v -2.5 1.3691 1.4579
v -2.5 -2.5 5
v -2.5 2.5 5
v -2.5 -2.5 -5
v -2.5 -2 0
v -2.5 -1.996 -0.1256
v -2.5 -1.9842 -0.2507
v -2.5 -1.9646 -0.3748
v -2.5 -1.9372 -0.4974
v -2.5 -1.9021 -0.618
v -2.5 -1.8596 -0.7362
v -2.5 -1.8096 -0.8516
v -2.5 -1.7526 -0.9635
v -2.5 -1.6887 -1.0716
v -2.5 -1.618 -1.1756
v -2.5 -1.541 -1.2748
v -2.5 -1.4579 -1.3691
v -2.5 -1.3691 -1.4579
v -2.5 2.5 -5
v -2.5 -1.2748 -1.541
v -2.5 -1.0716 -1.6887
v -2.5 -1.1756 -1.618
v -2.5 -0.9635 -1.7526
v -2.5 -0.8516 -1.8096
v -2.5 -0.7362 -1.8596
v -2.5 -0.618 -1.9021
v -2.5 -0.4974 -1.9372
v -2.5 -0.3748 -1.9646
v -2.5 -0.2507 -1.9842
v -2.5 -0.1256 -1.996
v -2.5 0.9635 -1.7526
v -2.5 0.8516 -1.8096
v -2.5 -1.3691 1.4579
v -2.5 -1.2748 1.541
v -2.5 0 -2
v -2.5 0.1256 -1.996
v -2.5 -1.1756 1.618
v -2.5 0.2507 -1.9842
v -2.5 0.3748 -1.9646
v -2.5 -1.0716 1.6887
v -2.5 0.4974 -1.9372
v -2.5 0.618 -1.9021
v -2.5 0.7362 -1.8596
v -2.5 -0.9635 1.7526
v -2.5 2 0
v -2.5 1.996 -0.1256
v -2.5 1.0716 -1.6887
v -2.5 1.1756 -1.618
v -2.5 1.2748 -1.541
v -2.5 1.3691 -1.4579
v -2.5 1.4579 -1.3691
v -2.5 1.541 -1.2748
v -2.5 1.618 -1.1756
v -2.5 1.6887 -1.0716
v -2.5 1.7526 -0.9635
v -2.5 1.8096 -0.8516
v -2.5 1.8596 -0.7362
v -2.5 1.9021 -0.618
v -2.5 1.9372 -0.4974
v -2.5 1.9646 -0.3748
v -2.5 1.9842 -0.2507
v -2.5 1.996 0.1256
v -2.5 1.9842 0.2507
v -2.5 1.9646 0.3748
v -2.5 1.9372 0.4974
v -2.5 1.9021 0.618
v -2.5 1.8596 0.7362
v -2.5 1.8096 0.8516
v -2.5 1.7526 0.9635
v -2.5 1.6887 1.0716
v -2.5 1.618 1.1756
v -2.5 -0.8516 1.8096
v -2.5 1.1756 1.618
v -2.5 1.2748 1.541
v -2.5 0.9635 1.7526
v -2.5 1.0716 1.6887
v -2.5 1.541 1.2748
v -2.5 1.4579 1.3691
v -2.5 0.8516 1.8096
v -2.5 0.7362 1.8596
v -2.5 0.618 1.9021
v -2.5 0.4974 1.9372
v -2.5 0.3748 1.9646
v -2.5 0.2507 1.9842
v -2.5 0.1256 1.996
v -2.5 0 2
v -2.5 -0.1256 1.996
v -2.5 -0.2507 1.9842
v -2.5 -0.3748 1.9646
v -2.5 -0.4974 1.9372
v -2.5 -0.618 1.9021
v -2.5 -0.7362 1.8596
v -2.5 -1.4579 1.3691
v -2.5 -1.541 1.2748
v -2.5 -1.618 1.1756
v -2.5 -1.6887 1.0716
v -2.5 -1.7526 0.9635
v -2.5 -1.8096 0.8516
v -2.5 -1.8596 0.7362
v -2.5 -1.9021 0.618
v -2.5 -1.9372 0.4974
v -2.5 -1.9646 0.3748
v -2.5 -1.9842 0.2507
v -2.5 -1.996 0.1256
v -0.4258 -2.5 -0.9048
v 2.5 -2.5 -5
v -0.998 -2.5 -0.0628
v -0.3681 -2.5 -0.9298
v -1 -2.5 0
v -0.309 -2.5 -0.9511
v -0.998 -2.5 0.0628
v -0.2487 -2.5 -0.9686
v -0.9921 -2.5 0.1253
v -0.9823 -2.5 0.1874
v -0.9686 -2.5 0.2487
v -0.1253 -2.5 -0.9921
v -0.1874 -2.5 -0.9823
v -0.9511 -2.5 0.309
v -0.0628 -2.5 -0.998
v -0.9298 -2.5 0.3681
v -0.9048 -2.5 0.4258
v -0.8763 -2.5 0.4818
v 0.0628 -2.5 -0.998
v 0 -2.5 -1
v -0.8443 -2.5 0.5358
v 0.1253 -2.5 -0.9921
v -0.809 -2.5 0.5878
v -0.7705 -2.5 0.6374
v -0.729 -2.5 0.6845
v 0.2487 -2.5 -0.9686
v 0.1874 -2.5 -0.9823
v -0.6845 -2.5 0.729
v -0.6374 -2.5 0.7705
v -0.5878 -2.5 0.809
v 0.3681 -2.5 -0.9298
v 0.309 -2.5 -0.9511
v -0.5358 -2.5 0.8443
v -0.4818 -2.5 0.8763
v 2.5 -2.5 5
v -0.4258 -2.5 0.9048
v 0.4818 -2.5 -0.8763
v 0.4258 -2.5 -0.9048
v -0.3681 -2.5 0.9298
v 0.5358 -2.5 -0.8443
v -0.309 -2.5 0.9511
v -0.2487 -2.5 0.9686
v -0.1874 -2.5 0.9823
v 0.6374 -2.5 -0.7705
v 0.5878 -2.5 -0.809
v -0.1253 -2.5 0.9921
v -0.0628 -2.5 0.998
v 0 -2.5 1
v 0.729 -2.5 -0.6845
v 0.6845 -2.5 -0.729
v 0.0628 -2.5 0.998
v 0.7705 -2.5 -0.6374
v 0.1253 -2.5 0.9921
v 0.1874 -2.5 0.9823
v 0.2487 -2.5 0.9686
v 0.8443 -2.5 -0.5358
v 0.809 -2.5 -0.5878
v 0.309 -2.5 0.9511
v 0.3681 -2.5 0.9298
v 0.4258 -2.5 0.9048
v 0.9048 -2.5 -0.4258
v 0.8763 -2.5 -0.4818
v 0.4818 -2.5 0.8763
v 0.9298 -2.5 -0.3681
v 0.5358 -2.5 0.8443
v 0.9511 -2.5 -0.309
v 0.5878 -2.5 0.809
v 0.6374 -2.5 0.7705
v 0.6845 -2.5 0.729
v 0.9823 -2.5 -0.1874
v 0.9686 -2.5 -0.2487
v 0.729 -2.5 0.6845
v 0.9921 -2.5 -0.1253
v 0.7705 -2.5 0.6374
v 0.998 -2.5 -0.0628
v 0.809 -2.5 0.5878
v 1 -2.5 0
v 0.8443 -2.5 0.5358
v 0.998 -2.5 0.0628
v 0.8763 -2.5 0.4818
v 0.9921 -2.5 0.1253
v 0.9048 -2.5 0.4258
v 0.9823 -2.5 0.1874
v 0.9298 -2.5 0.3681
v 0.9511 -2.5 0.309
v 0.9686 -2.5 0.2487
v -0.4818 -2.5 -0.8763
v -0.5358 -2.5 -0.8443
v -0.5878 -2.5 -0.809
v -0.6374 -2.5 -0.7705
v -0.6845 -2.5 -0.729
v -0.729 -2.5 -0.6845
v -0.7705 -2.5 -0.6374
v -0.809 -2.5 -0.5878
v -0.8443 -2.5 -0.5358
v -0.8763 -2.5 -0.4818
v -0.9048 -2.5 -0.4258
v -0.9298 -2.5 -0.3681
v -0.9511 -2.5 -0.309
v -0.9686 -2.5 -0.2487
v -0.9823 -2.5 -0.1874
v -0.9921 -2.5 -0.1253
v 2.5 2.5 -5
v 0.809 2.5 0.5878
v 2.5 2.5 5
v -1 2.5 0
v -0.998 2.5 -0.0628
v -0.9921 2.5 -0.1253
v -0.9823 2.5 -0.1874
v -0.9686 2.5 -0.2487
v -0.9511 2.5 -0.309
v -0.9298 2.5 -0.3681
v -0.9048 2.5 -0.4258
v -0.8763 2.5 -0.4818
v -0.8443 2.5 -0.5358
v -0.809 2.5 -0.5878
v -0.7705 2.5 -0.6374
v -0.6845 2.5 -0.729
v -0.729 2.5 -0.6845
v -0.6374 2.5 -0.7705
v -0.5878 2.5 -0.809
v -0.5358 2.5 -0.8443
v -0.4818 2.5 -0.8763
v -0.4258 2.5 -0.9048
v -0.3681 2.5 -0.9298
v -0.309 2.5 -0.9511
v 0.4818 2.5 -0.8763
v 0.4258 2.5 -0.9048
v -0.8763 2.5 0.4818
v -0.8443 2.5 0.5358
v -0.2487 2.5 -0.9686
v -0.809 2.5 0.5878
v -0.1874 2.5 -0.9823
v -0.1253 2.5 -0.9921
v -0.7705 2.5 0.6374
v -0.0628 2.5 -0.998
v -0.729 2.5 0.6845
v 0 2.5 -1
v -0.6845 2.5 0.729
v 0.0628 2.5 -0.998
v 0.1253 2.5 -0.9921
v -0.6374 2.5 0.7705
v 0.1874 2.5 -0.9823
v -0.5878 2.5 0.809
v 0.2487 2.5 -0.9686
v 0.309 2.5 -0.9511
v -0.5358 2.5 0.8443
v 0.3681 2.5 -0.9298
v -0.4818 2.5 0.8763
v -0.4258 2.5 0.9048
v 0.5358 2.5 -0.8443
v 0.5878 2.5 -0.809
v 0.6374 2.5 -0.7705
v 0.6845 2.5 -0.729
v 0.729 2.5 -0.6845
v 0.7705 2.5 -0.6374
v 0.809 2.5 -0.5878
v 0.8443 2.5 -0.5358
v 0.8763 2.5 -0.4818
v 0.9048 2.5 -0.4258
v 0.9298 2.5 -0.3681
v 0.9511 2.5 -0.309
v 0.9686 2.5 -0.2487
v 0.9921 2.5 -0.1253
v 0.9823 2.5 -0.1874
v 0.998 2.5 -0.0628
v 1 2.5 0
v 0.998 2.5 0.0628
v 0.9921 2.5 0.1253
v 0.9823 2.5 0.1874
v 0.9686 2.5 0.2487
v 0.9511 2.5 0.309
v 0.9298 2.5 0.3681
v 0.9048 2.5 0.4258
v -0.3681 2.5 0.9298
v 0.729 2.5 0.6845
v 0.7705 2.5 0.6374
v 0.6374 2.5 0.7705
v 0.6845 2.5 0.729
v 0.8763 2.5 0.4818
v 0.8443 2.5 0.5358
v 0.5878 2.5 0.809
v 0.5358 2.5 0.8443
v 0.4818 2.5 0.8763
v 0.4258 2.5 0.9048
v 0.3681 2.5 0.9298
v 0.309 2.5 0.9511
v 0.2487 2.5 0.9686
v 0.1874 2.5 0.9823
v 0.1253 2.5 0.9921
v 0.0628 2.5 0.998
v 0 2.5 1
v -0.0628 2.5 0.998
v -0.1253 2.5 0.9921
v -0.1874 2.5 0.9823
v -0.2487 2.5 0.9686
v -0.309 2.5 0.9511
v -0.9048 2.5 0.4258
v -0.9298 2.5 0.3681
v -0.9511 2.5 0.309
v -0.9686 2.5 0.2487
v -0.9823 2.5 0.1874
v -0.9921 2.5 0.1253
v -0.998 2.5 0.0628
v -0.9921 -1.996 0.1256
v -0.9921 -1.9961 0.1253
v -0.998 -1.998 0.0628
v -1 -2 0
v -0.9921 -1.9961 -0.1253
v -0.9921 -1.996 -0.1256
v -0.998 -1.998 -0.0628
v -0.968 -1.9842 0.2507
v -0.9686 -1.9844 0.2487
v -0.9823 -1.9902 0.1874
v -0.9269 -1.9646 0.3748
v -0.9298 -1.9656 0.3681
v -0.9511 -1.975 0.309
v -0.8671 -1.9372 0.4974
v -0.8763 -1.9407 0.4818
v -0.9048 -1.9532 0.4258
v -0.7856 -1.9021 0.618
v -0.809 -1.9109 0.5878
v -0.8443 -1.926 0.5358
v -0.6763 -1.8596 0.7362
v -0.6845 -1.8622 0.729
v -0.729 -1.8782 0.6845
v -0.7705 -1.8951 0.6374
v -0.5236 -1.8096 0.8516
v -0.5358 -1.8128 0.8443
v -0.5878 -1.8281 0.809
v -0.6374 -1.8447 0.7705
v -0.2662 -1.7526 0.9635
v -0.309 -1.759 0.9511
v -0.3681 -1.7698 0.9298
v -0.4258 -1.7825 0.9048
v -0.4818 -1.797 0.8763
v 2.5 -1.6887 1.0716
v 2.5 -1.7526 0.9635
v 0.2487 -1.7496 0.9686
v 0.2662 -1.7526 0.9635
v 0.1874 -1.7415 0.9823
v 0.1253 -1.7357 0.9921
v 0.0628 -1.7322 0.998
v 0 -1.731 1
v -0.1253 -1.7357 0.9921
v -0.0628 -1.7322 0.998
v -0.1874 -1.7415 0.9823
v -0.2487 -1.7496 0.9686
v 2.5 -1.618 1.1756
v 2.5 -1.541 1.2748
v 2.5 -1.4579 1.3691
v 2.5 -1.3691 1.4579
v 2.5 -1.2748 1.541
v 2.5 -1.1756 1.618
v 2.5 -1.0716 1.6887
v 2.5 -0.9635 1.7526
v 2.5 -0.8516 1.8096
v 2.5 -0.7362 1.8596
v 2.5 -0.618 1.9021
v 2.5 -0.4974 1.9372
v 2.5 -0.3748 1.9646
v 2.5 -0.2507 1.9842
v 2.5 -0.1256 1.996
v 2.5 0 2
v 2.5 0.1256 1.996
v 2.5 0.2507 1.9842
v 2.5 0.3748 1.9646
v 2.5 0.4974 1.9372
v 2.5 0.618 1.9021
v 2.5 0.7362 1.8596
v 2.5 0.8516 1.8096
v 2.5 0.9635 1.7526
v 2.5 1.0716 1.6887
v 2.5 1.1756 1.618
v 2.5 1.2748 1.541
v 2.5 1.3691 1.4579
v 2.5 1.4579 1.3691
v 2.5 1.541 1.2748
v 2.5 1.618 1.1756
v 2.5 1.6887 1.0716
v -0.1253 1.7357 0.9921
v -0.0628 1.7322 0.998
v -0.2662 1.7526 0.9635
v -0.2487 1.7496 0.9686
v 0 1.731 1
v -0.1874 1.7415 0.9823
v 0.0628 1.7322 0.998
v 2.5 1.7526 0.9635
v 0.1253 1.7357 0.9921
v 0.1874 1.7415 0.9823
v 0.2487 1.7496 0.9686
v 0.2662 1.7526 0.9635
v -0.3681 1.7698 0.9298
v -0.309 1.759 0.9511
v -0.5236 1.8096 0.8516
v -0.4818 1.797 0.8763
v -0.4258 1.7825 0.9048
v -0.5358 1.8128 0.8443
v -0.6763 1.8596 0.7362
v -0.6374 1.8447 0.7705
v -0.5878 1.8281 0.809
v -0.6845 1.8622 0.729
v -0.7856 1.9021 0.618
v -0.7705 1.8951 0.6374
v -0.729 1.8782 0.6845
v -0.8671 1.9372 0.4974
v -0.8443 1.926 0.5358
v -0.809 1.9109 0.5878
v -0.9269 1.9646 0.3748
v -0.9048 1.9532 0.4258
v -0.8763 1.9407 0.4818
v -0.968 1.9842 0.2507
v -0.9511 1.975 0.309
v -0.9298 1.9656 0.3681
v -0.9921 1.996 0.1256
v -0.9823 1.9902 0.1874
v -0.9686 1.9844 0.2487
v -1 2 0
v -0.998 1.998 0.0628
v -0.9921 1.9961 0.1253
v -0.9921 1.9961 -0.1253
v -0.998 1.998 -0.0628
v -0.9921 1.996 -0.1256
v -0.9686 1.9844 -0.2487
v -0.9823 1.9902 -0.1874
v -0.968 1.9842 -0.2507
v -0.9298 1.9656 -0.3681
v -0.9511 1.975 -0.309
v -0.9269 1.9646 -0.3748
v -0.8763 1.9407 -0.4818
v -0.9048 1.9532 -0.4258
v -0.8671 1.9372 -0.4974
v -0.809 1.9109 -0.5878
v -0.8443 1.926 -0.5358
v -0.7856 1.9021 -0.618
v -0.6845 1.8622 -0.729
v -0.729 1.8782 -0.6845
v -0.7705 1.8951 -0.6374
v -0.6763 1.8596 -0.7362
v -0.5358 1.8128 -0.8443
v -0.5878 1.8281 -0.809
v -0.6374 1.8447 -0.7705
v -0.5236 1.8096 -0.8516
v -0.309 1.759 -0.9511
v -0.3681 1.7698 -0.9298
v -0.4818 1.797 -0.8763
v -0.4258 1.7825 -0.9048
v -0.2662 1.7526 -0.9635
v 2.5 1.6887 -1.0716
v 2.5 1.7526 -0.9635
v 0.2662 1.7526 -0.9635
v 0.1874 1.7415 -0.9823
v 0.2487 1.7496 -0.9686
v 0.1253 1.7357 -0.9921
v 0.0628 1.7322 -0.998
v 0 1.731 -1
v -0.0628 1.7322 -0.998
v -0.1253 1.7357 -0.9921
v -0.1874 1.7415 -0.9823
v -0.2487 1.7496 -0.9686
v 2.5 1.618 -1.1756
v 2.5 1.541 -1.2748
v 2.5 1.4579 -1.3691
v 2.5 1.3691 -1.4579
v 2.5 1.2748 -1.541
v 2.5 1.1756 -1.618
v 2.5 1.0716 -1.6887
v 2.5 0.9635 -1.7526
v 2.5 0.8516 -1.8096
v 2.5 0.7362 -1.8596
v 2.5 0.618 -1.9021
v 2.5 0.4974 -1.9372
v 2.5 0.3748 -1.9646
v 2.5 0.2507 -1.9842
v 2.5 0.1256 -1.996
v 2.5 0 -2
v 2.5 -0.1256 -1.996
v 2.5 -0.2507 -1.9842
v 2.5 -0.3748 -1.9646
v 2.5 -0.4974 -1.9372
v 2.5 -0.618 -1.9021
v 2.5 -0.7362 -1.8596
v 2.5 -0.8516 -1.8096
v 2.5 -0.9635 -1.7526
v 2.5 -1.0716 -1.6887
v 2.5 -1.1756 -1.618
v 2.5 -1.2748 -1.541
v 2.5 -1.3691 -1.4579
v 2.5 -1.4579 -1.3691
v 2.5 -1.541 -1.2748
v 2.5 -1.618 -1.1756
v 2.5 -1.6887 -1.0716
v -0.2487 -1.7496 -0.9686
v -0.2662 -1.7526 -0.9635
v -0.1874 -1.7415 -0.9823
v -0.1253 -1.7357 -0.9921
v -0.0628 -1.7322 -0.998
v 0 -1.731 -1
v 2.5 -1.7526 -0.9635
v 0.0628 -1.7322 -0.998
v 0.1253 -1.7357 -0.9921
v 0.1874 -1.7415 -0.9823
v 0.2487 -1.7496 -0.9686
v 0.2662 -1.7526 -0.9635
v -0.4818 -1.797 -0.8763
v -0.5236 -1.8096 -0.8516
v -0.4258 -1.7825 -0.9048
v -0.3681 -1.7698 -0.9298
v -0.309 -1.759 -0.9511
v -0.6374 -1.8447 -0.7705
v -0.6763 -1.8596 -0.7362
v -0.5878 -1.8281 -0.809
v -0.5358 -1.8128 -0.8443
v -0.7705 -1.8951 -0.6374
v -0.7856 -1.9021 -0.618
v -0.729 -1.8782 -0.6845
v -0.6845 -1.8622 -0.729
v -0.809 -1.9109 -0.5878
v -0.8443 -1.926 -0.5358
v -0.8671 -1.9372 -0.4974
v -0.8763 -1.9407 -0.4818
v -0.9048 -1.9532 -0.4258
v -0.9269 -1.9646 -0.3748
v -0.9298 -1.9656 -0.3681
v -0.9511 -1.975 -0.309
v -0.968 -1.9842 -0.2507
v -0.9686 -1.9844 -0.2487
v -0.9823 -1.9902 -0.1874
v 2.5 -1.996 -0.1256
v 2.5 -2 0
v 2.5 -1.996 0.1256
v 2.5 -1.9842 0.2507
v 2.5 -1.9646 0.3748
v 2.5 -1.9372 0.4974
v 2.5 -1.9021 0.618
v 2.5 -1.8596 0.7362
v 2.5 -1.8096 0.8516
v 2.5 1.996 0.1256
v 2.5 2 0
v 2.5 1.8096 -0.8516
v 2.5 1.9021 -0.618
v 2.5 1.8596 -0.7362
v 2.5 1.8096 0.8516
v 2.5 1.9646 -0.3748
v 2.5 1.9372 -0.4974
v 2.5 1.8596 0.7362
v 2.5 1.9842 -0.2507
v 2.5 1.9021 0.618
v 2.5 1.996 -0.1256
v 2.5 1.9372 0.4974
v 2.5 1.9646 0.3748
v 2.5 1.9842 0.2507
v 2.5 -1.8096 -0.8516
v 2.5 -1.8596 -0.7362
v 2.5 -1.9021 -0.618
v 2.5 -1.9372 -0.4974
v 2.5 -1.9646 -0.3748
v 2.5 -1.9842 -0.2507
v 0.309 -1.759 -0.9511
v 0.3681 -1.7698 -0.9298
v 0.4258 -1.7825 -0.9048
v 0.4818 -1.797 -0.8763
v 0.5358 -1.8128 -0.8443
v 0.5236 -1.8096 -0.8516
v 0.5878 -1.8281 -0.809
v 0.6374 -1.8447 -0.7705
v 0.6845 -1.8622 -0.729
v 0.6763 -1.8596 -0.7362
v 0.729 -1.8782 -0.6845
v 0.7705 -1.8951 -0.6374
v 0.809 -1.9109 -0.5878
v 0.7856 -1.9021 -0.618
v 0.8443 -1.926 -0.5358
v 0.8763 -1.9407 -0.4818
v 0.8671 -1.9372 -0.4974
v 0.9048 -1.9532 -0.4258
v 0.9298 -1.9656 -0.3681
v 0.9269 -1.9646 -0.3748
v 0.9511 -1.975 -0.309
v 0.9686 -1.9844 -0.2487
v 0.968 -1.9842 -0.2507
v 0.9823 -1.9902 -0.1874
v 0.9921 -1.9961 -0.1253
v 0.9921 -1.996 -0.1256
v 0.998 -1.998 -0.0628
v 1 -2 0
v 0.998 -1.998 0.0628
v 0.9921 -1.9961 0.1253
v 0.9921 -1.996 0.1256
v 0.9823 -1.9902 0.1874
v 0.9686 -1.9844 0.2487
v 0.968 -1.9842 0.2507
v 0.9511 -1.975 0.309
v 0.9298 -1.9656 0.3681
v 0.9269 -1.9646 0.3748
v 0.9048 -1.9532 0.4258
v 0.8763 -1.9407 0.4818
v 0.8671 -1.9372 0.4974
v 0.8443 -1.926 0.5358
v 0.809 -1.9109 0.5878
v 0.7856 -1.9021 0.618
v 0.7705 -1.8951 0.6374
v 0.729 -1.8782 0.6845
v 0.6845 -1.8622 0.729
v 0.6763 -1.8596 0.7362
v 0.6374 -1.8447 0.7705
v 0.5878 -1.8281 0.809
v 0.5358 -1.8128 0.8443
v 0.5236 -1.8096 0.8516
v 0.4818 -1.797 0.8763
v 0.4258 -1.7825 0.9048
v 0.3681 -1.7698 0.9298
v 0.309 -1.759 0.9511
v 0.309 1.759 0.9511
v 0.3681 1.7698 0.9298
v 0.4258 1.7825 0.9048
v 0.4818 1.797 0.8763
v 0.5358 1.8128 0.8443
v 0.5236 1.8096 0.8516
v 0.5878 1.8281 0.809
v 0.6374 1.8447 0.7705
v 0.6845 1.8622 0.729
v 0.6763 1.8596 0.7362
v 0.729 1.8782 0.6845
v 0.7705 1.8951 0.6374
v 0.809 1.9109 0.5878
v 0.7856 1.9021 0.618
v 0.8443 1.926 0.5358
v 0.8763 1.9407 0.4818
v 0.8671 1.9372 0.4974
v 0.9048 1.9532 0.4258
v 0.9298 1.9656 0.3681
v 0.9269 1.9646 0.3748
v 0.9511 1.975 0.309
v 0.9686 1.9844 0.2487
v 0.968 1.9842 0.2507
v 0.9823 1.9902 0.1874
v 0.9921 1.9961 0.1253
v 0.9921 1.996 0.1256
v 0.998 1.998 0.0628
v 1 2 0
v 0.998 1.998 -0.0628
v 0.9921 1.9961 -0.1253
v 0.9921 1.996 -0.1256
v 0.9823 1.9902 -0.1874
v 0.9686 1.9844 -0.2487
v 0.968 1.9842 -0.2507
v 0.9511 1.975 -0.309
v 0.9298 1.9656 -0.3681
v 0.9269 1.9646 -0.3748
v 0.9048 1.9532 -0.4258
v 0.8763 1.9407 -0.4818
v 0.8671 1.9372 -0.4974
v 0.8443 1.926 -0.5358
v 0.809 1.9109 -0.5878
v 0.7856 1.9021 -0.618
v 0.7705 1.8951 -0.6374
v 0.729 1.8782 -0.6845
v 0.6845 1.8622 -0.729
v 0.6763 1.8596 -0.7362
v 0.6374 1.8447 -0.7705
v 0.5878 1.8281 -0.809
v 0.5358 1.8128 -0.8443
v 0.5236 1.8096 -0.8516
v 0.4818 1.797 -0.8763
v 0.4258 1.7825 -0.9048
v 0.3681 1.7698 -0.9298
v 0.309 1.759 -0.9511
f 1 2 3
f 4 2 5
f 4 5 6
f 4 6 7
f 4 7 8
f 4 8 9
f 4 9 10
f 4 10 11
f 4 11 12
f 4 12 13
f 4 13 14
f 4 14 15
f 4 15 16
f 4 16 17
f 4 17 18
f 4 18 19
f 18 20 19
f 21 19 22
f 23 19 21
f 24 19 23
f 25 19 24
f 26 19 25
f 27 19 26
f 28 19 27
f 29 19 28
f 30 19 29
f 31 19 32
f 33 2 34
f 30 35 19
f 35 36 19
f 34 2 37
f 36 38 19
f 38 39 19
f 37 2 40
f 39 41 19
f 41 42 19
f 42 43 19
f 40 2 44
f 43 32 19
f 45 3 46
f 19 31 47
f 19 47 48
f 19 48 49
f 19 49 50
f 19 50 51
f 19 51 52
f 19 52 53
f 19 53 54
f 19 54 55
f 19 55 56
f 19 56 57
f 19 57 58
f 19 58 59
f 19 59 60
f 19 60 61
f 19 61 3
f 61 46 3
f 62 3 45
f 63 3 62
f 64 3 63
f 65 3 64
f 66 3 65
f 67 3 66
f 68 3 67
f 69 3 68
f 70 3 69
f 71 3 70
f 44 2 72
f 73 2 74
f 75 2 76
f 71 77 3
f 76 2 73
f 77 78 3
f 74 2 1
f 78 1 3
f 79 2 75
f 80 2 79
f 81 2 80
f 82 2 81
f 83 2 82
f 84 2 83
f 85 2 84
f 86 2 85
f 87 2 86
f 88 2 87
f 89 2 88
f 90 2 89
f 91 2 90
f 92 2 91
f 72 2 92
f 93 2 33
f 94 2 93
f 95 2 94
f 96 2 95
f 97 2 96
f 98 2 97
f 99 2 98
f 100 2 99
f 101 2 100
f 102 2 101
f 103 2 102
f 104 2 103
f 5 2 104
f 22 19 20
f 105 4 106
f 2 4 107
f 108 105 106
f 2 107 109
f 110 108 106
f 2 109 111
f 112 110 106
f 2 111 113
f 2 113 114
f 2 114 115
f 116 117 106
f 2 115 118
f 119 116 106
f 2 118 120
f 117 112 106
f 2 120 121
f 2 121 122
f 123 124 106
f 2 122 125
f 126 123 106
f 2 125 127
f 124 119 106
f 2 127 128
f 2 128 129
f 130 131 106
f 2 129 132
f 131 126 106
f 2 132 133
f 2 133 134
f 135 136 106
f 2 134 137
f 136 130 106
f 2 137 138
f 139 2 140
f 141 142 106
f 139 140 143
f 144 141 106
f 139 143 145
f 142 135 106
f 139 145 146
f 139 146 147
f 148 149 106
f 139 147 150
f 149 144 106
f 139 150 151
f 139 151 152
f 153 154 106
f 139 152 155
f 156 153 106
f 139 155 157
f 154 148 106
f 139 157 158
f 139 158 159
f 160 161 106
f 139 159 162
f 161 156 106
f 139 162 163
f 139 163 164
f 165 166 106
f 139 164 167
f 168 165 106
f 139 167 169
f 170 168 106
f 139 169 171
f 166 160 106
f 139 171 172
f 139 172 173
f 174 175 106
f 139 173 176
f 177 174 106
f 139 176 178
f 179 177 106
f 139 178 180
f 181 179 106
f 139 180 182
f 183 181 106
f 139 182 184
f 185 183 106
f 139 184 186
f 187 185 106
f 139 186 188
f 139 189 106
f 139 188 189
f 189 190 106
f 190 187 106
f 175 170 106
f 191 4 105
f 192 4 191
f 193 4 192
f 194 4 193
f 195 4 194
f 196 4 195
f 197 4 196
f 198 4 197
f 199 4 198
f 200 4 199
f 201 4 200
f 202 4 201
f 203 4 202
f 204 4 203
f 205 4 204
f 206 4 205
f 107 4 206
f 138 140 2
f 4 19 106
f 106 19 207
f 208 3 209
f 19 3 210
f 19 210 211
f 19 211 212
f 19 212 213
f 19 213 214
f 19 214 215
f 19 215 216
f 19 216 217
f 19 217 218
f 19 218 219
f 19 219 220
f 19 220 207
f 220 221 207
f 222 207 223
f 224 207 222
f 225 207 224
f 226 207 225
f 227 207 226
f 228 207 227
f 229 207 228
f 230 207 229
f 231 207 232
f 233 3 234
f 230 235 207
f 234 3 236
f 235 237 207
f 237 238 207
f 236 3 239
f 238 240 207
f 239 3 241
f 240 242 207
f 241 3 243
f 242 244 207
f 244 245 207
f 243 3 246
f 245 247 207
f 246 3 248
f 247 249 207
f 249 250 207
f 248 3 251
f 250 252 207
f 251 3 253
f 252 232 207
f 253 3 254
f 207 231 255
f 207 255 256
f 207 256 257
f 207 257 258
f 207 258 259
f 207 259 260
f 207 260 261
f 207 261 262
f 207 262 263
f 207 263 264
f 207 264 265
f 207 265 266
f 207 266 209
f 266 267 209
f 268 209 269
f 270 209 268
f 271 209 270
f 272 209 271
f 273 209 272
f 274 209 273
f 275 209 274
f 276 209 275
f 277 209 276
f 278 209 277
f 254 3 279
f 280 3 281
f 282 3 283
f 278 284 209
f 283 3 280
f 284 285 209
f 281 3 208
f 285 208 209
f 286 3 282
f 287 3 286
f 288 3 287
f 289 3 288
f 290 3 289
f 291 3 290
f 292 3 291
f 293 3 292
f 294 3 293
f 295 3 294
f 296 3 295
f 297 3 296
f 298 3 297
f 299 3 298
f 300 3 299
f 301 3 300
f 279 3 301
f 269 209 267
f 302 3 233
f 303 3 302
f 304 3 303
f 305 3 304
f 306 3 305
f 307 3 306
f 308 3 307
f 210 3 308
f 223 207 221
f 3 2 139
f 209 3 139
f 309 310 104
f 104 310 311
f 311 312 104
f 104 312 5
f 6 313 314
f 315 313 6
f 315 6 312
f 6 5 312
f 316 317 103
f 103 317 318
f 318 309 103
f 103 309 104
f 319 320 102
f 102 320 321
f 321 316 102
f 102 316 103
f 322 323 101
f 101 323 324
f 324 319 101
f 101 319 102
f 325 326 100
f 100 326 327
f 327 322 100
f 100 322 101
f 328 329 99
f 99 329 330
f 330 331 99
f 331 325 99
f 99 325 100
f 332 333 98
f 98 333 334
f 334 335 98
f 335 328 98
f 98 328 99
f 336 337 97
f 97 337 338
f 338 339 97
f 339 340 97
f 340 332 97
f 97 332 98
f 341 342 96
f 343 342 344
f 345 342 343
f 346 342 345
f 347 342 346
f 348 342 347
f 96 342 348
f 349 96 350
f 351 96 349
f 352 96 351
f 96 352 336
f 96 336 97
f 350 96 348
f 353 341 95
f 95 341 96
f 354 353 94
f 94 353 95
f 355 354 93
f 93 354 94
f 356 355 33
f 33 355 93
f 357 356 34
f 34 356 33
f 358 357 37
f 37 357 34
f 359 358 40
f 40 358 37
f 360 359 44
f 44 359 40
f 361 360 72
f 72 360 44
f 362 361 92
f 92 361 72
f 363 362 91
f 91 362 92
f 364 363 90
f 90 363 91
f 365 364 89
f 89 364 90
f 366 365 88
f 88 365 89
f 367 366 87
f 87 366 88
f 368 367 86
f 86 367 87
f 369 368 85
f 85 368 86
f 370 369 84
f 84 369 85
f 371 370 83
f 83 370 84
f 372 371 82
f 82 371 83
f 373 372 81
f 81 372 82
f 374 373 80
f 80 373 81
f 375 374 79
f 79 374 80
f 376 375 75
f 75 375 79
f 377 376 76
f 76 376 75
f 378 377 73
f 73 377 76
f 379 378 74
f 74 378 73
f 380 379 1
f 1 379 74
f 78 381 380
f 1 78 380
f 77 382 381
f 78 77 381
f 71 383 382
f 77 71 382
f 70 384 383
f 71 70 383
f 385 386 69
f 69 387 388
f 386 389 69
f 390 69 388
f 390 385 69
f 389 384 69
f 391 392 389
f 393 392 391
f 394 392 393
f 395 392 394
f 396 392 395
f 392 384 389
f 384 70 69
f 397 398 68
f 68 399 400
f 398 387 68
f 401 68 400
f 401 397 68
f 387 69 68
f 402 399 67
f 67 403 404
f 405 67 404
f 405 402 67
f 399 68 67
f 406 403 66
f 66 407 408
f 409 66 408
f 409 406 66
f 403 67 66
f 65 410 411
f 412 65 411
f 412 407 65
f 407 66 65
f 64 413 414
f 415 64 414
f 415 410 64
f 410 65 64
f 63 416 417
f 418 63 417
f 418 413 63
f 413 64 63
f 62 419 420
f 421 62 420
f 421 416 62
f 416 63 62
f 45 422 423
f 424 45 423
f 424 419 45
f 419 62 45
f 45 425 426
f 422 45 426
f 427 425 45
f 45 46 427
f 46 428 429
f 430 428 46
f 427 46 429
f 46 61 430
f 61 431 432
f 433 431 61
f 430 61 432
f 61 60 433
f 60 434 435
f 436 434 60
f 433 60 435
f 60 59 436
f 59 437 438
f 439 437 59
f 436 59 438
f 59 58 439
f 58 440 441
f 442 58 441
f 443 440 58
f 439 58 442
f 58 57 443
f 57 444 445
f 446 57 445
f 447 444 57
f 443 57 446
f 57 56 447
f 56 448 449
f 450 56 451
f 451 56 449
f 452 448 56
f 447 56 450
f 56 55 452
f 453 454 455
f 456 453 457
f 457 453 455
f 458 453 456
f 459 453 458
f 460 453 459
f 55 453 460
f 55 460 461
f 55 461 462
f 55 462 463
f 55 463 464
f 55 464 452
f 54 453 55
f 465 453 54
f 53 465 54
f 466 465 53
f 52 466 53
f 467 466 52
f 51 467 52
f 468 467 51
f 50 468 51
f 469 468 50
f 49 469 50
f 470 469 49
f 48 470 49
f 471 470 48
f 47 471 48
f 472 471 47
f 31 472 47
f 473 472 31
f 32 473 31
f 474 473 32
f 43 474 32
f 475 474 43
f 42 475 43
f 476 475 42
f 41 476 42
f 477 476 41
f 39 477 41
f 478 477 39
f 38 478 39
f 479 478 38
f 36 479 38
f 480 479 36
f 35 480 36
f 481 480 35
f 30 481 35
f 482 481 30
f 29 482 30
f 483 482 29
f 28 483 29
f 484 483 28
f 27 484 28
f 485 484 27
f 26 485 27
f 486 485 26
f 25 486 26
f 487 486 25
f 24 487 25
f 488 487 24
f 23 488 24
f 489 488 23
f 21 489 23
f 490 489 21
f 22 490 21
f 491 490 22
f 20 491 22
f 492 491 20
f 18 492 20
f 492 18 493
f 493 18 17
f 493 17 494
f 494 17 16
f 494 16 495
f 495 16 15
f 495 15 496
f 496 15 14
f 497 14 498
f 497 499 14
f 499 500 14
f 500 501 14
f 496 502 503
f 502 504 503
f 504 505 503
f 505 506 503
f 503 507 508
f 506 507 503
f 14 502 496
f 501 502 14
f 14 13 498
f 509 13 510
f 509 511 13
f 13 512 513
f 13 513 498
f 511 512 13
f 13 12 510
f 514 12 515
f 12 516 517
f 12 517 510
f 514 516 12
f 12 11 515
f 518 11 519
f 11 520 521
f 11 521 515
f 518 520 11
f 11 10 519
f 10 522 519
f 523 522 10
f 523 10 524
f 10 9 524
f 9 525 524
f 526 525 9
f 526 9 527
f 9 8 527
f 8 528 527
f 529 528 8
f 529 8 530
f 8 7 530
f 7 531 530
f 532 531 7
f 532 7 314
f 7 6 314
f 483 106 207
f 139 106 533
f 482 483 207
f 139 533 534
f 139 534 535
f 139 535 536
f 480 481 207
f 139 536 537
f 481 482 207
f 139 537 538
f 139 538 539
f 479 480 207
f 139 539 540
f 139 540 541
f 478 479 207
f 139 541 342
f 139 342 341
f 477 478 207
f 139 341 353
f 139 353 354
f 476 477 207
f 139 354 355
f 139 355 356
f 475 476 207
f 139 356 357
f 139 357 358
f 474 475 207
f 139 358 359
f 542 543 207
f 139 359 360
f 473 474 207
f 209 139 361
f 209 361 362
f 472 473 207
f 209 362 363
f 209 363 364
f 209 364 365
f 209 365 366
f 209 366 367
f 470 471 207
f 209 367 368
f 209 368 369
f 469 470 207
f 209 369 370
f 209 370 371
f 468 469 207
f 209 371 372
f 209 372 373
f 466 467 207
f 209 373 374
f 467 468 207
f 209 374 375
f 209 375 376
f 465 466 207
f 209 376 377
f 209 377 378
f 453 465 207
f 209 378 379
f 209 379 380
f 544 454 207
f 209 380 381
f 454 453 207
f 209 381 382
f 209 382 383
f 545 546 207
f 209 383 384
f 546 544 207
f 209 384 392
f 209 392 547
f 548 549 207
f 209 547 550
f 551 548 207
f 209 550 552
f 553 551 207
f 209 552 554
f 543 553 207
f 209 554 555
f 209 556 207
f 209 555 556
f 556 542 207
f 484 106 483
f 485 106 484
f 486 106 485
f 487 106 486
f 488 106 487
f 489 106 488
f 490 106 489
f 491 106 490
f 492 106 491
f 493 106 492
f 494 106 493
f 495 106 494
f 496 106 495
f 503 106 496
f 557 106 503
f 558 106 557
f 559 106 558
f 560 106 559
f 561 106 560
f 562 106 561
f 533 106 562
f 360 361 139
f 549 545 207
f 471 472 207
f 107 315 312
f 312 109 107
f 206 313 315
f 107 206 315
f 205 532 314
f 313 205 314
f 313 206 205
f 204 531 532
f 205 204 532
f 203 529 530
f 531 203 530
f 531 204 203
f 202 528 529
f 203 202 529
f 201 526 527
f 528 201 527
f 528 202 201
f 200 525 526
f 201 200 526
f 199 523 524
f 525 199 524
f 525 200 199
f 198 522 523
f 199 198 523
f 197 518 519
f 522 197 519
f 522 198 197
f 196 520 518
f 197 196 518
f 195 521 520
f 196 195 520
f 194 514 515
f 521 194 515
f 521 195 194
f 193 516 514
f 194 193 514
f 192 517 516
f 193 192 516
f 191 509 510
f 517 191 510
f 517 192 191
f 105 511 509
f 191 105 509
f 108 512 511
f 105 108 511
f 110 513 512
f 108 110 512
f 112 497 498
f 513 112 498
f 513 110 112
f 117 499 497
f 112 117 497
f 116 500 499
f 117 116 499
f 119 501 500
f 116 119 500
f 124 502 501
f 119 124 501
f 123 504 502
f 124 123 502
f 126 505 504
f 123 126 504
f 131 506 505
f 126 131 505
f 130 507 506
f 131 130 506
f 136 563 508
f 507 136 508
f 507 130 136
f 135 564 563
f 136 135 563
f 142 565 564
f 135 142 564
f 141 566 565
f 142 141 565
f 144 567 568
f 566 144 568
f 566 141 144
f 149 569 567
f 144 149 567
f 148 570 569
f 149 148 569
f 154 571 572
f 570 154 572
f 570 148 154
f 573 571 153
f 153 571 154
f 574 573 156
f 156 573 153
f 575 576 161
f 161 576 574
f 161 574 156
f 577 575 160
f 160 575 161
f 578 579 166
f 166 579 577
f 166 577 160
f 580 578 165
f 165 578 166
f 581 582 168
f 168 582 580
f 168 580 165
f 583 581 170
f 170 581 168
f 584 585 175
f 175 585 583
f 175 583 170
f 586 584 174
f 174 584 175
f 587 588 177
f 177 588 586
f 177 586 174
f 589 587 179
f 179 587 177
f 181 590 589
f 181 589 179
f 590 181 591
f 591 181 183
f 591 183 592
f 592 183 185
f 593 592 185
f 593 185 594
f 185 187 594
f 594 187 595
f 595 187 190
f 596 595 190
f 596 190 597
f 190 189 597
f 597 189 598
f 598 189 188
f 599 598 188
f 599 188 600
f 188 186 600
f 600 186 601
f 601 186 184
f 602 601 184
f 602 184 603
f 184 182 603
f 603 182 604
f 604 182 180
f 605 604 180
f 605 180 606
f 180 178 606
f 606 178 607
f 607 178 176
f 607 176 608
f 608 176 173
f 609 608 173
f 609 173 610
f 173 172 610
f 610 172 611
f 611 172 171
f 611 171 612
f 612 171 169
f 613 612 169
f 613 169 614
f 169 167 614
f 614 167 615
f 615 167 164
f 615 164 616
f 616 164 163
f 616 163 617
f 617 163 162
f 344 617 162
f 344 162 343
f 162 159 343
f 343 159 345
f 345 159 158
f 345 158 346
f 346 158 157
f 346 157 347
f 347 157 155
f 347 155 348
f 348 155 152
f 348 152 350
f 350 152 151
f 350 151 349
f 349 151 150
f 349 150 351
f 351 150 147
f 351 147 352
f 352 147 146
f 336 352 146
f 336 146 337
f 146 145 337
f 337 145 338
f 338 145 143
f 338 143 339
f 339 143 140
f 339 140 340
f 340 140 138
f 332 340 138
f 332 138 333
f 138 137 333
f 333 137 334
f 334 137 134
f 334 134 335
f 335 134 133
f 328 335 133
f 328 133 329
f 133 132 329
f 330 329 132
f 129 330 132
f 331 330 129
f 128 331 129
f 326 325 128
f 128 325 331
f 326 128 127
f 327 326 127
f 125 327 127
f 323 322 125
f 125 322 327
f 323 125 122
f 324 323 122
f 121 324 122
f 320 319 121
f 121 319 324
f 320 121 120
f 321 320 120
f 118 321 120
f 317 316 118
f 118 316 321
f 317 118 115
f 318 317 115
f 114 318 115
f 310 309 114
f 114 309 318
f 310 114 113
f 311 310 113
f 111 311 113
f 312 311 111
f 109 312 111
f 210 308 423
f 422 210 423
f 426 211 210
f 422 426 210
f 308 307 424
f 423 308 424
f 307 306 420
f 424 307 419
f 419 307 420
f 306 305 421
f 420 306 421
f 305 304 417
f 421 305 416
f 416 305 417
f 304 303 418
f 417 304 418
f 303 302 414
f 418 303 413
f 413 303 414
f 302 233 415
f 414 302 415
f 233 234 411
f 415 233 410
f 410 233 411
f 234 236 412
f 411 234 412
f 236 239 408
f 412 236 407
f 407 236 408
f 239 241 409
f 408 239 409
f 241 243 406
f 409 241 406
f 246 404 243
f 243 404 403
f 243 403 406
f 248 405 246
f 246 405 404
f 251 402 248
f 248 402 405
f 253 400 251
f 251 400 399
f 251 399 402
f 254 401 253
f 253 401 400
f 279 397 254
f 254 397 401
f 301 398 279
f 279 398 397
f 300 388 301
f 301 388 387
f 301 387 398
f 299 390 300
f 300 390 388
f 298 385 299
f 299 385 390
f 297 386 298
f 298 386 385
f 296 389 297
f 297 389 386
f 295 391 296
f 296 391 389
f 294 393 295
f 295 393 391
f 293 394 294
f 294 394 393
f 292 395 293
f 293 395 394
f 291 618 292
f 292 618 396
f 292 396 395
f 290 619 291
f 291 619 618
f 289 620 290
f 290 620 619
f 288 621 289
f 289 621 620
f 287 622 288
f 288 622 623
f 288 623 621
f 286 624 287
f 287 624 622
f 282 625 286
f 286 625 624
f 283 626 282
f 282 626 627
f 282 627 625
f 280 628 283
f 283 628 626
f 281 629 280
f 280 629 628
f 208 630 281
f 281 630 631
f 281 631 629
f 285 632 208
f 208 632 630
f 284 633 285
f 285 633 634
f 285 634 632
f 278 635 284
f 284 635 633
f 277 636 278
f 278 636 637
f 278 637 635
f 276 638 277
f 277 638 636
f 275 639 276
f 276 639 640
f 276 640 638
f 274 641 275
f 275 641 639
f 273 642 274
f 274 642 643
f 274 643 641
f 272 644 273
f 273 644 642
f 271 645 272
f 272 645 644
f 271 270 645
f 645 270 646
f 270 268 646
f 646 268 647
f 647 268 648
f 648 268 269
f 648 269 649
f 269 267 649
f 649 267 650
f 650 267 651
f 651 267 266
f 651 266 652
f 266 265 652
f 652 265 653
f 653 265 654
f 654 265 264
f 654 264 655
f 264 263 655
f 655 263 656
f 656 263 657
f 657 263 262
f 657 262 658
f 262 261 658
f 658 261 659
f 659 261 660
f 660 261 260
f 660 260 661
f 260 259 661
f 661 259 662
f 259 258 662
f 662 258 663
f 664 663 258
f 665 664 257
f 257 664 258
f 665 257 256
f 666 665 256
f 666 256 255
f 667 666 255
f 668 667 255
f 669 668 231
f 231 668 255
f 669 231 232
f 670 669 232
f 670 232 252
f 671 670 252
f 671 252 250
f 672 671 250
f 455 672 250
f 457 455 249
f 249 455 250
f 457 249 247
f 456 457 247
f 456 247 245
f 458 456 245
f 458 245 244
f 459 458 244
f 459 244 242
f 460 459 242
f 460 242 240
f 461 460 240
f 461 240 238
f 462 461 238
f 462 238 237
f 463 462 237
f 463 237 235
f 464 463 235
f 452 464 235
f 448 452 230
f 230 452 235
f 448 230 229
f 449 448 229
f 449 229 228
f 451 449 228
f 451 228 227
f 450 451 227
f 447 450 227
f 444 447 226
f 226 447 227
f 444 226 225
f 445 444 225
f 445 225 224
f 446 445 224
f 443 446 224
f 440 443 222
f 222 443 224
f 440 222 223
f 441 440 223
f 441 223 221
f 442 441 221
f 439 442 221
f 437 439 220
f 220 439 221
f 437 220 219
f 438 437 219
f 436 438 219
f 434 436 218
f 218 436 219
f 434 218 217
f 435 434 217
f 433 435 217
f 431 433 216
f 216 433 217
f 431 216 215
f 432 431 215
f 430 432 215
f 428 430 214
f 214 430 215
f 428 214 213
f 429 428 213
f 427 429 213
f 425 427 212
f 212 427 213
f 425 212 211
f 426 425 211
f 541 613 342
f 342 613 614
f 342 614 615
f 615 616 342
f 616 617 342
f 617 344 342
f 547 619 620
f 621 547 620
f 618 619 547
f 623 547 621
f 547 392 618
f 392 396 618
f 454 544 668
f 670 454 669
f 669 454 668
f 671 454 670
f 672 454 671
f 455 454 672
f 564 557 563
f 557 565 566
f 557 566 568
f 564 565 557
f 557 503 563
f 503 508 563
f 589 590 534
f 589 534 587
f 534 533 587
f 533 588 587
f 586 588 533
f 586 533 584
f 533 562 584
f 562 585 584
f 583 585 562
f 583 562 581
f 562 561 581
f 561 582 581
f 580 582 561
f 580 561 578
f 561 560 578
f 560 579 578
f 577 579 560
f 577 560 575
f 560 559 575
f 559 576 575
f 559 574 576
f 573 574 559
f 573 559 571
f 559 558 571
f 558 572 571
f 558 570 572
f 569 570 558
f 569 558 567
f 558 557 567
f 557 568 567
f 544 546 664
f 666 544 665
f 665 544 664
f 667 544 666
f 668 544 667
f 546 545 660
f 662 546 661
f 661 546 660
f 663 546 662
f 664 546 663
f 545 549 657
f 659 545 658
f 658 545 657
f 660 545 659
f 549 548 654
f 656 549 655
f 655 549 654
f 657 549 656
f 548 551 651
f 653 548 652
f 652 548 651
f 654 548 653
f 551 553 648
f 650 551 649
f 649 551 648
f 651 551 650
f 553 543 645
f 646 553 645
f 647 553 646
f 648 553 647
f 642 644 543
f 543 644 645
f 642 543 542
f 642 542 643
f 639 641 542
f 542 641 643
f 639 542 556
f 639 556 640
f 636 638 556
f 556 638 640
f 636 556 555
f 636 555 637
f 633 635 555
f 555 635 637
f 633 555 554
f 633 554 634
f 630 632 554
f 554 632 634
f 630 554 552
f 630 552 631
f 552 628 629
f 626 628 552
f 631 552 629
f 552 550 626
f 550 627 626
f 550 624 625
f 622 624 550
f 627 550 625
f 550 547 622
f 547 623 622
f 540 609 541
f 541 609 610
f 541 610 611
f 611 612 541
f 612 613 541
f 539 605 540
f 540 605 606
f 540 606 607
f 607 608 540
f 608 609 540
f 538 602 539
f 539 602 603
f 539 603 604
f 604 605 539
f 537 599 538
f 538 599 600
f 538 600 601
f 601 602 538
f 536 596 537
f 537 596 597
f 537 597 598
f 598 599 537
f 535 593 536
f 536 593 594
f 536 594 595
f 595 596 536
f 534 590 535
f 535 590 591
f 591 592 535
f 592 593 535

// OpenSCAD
difference() {

    // Create an object of 10mm height and 5mm width / depth
    cube([5, 5, 10], center=true);

    // The first object that will subtracted
    #rotate([90,0,0]) cylinder(h=7, r=1, center=true, $fn=100);

    // The second object that will be subtracted
    #rotate([0,90,0]) cylinder(h=7, r=2, center=true, $fn=100);

}
